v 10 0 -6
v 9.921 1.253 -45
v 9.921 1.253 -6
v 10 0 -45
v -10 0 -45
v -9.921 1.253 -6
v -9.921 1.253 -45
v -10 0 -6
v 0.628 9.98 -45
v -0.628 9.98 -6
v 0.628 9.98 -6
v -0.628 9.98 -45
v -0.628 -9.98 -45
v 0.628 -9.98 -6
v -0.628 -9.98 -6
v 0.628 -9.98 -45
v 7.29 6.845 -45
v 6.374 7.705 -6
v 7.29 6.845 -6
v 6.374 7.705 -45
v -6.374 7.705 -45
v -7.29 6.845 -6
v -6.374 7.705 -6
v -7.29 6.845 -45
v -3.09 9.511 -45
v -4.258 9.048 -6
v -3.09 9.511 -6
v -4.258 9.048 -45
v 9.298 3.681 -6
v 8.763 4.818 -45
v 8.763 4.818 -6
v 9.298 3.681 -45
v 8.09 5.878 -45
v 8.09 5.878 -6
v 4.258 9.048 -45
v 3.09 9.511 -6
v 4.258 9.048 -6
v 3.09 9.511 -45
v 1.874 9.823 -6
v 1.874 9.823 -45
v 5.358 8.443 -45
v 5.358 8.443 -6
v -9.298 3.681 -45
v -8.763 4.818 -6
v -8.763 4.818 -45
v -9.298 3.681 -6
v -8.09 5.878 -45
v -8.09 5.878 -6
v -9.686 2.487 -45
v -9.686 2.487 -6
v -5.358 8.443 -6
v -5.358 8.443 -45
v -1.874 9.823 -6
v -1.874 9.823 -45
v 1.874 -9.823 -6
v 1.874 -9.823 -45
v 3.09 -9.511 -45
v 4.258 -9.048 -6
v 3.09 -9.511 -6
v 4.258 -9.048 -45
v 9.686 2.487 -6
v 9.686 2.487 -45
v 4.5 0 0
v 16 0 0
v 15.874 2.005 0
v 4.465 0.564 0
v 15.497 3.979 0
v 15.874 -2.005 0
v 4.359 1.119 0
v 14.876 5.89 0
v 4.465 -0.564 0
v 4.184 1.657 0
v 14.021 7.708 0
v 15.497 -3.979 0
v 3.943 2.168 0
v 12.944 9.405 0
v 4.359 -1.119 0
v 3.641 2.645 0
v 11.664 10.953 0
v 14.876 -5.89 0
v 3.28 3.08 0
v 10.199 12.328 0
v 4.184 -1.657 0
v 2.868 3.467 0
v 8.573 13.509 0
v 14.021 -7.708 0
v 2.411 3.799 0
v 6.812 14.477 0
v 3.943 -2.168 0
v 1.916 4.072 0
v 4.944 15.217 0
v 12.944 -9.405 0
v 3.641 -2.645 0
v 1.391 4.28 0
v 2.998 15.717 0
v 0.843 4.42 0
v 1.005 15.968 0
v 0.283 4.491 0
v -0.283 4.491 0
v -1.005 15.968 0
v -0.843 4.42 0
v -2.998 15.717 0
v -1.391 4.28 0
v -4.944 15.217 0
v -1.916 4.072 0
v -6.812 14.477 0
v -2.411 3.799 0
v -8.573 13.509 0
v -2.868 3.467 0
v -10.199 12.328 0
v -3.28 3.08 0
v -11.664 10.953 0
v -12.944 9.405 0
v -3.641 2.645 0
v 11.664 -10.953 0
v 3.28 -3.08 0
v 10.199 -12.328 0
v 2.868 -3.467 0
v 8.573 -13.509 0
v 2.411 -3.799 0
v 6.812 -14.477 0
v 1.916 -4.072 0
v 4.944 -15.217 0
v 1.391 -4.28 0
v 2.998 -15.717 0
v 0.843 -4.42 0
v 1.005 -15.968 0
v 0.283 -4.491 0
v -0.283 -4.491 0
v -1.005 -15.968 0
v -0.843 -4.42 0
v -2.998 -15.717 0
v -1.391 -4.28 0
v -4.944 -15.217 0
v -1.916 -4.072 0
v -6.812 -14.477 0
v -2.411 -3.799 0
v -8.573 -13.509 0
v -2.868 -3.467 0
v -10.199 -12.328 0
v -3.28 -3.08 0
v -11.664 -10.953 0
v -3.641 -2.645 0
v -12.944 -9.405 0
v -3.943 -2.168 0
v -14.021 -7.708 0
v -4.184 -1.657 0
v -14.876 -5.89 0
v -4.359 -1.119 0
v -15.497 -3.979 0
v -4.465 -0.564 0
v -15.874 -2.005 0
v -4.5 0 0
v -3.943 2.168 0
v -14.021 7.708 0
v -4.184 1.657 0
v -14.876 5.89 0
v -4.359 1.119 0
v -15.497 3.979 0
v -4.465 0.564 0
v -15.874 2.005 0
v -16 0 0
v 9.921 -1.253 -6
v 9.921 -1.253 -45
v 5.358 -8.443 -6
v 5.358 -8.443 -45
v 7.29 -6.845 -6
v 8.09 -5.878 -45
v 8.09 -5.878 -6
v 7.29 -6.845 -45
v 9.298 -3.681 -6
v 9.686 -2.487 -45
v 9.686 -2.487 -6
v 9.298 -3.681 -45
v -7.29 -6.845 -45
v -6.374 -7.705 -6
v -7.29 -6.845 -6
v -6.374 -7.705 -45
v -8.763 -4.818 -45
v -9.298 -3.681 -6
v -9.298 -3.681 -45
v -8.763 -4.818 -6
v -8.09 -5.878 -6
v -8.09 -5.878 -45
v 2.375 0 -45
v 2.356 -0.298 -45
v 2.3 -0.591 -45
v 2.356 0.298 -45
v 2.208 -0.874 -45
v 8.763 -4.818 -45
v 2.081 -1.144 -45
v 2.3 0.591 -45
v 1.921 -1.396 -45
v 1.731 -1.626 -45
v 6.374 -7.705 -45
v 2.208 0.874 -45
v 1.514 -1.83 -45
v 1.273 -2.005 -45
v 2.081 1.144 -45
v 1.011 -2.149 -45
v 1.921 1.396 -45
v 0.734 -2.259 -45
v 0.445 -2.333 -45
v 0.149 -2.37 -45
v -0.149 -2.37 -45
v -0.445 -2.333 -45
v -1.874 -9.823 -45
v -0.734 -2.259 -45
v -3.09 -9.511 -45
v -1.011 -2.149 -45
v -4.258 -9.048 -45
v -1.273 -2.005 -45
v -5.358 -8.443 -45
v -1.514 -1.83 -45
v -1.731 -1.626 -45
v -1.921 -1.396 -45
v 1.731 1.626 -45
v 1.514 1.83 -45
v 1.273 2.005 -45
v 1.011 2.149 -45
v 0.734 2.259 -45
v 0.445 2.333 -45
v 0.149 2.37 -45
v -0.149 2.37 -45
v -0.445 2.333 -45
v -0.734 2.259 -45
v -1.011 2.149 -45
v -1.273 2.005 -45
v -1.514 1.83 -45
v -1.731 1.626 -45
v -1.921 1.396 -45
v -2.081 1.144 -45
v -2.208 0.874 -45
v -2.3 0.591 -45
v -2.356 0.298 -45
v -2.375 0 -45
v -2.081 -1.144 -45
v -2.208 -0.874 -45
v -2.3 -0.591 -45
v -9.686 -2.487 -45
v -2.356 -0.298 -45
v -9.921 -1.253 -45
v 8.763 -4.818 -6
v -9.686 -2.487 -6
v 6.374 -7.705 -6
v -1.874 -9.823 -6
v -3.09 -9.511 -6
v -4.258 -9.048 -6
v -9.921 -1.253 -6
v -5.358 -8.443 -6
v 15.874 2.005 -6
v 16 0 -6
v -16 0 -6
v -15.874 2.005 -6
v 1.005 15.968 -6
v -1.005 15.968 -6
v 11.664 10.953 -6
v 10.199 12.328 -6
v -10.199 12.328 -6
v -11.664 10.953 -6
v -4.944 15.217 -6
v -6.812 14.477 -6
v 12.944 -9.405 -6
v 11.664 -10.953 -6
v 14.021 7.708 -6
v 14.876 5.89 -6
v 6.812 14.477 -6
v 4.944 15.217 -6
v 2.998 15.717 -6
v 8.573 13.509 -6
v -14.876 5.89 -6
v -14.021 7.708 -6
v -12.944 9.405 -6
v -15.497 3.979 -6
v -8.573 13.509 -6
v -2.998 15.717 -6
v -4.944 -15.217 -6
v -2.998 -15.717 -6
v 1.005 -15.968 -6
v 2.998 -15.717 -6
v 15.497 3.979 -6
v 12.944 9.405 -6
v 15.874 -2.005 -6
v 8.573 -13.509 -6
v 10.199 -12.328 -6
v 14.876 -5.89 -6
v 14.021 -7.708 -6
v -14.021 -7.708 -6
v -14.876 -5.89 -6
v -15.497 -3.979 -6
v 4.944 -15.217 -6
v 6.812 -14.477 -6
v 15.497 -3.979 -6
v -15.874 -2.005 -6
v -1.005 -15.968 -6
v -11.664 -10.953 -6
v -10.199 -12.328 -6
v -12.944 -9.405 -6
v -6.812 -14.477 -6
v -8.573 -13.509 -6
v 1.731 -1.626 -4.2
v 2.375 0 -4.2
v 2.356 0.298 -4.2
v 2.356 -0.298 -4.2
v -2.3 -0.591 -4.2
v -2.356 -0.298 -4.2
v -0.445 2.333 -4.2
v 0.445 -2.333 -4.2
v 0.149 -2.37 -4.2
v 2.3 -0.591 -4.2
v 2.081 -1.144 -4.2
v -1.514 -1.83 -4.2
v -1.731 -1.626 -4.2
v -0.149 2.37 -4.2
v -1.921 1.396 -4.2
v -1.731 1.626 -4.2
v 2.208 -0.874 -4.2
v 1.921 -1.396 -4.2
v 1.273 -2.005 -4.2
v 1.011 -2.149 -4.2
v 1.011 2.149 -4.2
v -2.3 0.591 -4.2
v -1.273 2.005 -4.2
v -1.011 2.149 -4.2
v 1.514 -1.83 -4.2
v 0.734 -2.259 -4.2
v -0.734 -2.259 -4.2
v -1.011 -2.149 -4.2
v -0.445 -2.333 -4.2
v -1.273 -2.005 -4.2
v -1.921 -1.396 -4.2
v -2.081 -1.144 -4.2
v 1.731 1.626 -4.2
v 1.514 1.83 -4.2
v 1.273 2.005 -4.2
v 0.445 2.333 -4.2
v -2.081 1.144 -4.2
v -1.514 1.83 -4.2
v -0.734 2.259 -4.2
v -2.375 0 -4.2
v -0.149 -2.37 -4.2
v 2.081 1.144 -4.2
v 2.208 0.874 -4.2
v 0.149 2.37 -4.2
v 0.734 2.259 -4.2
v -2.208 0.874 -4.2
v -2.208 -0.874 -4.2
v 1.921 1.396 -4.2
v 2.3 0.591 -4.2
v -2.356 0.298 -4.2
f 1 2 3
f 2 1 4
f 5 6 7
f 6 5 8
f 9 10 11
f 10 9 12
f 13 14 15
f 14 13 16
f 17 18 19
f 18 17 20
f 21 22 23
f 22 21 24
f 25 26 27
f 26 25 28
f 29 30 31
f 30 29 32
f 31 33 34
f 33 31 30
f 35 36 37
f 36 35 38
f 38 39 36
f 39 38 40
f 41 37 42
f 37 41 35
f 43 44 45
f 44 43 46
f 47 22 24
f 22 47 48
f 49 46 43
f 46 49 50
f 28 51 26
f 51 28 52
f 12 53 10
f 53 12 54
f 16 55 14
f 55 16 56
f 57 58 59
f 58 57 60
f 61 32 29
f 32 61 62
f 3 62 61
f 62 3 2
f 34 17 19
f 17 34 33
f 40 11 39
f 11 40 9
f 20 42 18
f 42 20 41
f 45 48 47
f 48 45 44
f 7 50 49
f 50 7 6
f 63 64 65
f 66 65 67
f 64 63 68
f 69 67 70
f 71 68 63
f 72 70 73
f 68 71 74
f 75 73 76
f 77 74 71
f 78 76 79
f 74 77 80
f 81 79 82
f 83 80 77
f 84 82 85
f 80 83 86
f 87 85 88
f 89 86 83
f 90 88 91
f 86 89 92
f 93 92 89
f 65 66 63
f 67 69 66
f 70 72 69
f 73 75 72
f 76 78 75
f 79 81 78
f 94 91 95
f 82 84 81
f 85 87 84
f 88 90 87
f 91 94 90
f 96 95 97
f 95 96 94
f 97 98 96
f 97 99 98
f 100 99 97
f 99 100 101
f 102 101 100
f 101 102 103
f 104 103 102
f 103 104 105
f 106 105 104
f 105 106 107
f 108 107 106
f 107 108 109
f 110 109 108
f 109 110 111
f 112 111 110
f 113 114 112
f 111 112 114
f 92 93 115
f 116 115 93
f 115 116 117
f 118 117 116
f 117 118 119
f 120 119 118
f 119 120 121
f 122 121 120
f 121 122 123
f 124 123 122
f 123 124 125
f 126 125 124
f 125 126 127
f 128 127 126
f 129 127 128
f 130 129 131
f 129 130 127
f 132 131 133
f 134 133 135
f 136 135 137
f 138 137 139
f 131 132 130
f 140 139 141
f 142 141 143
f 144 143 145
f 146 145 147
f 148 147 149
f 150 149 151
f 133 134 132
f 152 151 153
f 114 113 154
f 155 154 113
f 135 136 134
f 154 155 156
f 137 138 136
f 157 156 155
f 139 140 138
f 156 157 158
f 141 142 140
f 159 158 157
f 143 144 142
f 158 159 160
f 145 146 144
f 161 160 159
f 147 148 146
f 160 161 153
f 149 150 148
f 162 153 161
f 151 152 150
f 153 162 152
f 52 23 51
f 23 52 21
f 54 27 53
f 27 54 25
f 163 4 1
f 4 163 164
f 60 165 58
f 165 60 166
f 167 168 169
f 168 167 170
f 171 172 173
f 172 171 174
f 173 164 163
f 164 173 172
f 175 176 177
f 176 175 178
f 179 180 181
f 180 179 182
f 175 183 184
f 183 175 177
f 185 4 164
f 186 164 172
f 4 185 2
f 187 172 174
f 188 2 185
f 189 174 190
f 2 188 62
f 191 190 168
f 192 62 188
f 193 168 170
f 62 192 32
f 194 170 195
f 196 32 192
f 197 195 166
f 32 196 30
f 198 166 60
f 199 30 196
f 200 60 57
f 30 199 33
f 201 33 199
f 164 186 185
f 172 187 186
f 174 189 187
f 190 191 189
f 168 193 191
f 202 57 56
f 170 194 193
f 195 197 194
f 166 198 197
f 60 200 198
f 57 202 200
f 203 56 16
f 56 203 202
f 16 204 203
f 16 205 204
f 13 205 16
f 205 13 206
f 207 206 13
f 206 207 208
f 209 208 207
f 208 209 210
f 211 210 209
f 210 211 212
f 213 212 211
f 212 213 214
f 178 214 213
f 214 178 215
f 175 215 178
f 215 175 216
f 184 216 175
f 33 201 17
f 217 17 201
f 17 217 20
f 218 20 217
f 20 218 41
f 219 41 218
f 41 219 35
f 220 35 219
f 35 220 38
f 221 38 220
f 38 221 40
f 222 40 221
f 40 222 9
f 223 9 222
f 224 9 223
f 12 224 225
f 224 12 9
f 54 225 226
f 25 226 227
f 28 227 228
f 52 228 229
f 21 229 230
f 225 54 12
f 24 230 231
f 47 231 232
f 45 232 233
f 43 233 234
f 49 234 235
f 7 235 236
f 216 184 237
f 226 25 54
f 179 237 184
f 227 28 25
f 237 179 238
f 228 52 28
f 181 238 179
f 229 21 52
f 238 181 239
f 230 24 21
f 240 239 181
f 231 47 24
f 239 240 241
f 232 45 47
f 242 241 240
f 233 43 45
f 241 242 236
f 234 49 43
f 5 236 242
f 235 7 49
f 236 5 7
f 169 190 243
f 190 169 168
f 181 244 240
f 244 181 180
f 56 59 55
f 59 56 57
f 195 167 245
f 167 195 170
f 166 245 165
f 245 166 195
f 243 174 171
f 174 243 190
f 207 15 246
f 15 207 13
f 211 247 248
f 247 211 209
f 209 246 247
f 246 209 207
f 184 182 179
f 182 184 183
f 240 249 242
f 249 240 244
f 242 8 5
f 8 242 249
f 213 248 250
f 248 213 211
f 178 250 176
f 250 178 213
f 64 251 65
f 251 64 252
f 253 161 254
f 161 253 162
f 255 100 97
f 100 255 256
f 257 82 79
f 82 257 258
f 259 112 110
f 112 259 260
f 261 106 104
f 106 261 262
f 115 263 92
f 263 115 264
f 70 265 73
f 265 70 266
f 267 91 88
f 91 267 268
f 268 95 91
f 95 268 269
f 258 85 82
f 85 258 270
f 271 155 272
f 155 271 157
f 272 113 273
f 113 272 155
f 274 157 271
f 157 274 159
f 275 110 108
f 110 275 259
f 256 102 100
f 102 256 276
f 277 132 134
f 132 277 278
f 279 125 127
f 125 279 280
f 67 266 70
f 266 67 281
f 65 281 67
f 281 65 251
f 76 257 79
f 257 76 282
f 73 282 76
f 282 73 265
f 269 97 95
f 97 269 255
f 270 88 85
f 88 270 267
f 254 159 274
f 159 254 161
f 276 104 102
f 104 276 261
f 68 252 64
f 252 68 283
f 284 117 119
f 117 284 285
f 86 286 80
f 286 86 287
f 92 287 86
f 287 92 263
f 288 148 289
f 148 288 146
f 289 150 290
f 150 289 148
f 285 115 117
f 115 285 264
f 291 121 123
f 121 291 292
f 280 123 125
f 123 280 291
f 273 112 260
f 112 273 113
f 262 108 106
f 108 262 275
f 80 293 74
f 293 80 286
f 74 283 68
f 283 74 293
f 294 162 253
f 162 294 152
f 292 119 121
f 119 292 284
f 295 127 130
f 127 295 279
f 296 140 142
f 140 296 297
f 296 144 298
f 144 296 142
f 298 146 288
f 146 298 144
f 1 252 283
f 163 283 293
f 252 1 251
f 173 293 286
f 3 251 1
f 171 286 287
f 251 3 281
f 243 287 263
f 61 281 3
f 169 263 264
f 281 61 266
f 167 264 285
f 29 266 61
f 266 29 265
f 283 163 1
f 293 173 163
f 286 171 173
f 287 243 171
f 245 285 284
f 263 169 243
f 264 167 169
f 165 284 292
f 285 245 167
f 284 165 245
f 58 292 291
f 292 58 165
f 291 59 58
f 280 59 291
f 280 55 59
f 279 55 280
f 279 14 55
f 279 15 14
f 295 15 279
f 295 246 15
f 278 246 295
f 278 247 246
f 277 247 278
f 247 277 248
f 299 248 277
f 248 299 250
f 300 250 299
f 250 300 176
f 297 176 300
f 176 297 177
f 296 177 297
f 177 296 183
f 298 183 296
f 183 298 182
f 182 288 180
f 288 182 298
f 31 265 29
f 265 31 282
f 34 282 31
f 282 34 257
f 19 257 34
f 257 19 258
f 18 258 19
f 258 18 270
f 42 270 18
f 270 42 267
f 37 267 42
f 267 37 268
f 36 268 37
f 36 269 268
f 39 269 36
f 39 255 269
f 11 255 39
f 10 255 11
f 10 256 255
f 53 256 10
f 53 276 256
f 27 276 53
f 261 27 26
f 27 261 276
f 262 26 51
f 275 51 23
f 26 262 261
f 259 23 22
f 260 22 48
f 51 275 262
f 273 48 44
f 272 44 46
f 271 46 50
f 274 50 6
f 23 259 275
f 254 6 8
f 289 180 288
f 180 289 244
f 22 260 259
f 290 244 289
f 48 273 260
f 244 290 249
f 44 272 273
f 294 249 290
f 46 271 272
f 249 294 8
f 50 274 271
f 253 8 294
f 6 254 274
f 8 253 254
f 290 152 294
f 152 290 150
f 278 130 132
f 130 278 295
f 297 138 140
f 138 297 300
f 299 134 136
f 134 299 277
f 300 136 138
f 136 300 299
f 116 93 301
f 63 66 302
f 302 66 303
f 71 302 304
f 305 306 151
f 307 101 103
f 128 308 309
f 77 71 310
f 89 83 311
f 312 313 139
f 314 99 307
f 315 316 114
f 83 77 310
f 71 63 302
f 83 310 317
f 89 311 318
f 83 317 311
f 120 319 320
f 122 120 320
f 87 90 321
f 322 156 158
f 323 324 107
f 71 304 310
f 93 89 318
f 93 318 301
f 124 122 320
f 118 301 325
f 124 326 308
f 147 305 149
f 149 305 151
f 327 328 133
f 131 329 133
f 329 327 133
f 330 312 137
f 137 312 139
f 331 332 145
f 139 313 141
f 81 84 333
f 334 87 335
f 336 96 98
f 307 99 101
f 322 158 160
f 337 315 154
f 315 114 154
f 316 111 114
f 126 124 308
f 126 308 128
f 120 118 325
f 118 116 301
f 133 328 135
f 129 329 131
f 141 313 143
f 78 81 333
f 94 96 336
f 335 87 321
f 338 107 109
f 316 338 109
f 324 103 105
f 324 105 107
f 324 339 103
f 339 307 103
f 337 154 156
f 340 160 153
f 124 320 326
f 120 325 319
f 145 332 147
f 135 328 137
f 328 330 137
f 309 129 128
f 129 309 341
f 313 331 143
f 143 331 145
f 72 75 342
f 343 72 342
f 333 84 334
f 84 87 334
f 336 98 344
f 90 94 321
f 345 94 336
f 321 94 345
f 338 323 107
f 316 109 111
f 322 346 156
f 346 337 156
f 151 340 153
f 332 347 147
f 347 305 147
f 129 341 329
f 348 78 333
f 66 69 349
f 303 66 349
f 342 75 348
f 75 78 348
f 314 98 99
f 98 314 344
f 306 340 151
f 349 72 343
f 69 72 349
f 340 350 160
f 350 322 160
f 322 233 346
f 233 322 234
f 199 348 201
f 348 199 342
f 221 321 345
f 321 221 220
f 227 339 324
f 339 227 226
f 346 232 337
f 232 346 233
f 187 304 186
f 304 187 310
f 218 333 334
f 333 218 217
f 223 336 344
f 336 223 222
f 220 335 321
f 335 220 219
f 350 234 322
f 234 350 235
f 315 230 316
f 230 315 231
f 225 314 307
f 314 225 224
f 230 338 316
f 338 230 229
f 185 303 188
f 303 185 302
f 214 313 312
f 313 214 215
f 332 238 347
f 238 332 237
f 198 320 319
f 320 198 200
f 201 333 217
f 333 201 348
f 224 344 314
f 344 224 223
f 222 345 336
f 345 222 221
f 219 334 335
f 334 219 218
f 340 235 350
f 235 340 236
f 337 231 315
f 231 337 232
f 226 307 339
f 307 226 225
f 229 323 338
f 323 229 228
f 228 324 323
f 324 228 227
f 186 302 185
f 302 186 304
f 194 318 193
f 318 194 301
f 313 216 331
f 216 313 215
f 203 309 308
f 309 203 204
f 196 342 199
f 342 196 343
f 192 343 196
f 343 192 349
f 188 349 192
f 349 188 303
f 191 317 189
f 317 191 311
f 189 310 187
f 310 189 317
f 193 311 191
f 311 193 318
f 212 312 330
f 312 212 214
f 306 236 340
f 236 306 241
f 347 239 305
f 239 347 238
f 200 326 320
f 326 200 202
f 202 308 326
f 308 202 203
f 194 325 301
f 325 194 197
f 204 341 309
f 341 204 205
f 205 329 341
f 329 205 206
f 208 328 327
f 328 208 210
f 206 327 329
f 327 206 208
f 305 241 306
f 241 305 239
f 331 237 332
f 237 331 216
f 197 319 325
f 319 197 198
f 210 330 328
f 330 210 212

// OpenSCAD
$fn = 50;


difference() {
	union() {
		translate(v = [0, 0, -45.0000000000]) {
			cylinder(h = 45, r = 10.0000000000);
		}
		translate(v = [0, 0, -6.0000000000]) {
			cylinder(h = 6, r = 16.0000000000);
		}
	}
	union() {
		translate(v = [0, 0, 0]) {
			rotate(a = [0, 0, 0]) {
				difference() {
					union() {
						#translate(v = [0, 0, -45.0000000000]) {
							cylinder(h = 45, r = 2.2500000000);
						}
						#translate(v = [0, 0, -4.2000000000]) {
							cylinder(h = 4.2000000000, r1 = 2.3750000000, r2 = 4.5000000000);
						}
						#translate(v = [0, 0, -45.0000000000]) {
							cylinder(h = 45, r = 2.3750000000);
						}
						#translate(v = [0, 0, -45.0000000000]) {
							cylinder(h = 45, r = 2.2500000000);
						}
					}
					union();
				}
			}
		}
	}
}
